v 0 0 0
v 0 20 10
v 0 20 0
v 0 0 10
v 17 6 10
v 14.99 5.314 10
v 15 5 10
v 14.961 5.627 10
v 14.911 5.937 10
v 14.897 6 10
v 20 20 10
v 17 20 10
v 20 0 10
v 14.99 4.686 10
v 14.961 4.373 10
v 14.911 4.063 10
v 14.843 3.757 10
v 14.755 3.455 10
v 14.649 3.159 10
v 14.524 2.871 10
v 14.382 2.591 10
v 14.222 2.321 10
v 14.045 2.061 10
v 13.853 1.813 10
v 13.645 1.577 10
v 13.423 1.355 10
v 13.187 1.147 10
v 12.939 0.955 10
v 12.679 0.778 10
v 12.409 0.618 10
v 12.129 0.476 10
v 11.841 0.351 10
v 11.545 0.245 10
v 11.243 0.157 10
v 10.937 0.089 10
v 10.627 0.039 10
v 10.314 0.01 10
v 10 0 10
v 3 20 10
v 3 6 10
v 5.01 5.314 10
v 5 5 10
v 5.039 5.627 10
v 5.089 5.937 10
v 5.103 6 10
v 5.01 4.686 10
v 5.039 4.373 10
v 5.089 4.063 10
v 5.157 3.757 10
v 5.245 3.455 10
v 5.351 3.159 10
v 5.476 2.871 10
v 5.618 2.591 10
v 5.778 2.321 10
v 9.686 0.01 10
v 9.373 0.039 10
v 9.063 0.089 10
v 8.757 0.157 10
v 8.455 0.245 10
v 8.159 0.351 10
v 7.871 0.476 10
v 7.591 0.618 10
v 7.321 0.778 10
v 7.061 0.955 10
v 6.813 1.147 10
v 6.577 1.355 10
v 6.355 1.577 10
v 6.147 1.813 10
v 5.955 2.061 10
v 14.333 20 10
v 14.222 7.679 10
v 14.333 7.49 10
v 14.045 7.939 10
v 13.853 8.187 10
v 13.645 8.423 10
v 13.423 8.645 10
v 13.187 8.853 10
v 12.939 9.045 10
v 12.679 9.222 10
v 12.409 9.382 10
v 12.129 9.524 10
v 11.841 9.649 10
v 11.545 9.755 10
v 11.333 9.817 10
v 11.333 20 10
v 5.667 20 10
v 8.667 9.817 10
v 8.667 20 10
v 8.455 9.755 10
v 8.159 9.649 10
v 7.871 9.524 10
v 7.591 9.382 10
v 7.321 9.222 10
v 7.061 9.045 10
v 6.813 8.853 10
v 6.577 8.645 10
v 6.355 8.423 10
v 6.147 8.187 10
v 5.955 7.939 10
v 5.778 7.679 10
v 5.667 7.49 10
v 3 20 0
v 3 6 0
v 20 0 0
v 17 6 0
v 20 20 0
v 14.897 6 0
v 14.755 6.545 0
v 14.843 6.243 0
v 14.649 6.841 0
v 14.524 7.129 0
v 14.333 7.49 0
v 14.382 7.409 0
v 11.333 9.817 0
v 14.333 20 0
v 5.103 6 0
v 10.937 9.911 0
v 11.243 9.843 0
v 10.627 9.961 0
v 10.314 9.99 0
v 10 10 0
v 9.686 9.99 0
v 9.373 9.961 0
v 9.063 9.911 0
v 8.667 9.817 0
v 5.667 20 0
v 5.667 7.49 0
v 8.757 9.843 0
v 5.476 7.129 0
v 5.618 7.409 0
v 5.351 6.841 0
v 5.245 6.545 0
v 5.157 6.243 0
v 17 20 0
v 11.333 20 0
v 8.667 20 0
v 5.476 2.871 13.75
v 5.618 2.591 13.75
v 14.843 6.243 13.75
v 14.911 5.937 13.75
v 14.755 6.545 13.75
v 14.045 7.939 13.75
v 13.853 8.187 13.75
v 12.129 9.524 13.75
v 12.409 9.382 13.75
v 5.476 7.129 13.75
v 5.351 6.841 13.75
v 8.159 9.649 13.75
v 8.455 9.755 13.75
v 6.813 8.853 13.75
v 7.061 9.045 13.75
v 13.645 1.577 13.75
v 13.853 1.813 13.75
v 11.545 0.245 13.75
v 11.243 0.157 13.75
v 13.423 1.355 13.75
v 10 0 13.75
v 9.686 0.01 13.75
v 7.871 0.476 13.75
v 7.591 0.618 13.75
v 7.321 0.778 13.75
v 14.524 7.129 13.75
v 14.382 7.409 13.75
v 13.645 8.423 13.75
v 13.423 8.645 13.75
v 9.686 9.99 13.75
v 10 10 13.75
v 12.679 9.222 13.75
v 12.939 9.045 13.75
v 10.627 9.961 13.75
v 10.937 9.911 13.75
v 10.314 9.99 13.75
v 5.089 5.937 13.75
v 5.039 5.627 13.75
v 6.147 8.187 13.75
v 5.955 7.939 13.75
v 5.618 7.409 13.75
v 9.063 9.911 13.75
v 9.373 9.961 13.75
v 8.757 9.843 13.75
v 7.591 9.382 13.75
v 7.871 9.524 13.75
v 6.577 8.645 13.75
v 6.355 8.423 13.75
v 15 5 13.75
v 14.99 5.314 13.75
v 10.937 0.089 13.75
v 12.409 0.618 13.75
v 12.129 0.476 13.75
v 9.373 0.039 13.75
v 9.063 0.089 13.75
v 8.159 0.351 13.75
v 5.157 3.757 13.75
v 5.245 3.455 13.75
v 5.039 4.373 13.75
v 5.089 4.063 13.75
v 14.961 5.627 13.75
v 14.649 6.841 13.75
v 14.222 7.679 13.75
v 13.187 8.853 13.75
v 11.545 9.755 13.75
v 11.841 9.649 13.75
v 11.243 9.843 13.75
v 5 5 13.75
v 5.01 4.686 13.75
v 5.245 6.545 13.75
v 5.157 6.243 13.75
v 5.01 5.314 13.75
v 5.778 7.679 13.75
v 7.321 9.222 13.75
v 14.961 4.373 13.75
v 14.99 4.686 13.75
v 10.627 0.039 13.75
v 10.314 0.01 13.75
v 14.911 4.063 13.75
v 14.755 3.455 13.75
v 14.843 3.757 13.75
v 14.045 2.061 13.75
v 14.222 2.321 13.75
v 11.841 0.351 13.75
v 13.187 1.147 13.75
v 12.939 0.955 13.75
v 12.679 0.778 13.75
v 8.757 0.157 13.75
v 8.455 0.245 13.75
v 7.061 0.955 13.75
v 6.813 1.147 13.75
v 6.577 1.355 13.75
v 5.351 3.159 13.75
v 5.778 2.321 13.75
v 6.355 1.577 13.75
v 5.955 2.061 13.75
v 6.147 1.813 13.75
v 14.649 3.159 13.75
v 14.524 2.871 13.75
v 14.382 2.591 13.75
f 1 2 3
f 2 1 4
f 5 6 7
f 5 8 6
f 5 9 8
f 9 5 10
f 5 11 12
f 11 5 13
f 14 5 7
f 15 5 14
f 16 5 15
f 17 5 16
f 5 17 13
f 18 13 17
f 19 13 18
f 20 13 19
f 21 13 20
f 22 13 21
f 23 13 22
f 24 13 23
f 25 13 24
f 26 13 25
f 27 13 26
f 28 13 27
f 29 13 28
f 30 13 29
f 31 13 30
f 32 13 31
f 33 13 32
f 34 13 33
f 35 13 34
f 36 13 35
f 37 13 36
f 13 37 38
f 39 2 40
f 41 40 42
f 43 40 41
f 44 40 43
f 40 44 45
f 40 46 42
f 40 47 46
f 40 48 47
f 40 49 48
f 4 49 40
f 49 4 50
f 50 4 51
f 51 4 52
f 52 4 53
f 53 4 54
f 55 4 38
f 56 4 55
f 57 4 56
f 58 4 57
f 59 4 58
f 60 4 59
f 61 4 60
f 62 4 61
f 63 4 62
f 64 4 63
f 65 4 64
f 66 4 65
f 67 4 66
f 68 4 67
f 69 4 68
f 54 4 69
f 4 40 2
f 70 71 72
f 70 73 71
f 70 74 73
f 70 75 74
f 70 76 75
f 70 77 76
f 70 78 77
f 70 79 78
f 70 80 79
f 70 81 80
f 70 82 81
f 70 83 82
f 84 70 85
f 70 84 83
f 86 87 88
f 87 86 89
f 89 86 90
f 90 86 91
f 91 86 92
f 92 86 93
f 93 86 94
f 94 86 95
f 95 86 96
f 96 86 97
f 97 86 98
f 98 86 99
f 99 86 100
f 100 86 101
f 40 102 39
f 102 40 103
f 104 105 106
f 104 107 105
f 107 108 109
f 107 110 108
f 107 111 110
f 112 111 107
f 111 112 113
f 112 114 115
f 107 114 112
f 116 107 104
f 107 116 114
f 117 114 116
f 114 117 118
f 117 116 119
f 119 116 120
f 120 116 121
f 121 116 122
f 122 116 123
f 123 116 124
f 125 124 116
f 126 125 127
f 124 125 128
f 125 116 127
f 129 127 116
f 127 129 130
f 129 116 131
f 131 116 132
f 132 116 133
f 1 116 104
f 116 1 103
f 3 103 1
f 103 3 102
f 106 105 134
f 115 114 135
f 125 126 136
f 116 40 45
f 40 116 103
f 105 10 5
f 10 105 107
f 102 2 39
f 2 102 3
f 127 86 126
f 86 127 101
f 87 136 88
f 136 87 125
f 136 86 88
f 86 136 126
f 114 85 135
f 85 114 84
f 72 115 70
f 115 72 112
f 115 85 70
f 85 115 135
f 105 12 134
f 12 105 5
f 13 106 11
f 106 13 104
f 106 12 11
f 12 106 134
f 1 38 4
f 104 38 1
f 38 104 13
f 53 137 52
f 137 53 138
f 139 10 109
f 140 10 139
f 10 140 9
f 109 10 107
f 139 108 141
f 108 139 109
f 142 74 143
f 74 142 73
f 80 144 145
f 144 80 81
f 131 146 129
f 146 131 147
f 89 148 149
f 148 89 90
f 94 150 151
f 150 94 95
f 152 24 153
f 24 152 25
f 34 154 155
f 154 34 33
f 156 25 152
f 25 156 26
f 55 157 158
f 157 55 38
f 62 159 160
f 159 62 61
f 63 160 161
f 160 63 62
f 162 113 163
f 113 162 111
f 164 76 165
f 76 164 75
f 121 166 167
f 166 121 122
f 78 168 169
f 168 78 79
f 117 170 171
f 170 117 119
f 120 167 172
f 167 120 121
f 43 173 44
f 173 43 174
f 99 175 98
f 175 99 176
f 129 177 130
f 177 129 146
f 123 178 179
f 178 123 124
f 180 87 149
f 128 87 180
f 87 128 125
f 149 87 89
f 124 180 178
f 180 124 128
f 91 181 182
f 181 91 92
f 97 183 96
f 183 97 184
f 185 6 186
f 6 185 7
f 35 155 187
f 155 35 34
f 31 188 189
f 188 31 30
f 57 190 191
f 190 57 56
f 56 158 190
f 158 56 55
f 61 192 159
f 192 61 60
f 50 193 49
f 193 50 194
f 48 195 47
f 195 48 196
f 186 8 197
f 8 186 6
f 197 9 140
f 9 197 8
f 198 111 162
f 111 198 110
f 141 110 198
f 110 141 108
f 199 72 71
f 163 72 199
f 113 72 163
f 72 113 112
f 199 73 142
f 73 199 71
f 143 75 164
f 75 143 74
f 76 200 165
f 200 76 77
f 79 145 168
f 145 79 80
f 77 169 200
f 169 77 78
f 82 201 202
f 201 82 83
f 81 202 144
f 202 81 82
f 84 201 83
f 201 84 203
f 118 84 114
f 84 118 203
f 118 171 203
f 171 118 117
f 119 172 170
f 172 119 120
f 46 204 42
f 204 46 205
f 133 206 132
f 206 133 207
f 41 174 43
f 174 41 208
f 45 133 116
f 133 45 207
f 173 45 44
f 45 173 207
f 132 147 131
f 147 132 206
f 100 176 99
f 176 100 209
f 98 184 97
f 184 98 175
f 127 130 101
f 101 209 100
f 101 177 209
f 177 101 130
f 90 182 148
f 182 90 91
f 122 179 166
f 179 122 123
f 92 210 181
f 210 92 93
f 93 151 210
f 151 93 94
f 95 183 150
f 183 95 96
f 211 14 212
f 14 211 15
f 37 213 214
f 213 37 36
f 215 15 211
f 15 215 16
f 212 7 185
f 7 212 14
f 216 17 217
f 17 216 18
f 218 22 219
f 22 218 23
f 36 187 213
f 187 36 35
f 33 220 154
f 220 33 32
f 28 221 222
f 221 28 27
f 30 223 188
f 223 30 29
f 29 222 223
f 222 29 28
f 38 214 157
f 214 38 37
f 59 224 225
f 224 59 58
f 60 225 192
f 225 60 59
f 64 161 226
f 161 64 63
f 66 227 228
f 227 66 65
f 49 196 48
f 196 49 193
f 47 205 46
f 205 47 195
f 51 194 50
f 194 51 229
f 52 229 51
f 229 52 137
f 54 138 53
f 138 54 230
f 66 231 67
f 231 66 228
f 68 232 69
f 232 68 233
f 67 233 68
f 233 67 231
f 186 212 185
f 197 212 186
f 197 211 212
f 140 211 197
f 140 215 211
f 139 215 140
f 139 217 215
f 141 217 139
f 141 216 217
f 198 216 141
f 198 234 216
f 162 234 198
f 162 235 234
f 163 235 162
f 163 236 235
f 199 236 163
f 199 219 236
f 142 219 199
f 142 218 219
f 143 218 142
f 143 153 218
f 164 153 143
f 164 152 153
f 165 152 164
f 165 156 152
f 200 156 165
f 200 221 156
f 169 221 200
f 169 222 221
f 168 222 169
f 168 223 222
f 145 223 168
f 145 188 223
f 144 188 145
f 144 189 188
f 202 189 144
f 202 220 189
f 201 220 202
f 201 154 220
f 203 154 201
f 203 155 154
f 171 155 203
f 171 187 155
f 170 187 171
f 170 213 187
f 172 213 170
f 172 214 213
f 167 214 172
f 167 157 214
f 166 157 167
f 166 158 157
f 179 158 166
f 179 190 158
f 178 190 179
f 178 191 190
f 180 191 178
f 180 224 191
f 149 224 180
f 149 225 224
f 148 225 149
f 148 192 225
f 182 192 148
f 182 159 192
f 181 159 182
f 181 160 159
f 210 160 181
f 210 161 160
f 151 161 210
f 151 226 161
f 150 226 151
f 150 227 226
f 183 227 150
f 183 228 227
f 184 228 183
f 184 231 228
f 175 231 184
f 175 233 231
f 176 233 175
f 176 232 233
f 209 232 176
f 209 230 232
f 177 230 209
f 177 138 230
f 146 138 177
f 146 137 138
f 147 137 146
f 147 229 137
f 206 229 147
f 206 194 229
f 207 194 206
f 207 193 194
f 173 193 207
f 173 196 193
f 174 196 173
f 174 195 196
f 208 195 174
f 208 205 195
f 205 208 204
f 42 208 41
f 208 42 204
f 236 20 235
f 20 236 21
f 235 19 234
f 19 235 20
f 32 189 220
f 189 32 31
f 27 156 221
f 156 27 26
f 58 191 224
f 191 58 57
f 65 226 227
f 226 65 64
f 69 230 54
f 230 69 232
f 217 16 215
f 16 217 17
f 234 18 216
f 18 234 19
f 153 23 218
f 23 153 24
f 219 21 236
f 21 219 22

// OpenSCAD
include <lib/dogs.scad>

dog(dogblock, type="large", hole=false);
